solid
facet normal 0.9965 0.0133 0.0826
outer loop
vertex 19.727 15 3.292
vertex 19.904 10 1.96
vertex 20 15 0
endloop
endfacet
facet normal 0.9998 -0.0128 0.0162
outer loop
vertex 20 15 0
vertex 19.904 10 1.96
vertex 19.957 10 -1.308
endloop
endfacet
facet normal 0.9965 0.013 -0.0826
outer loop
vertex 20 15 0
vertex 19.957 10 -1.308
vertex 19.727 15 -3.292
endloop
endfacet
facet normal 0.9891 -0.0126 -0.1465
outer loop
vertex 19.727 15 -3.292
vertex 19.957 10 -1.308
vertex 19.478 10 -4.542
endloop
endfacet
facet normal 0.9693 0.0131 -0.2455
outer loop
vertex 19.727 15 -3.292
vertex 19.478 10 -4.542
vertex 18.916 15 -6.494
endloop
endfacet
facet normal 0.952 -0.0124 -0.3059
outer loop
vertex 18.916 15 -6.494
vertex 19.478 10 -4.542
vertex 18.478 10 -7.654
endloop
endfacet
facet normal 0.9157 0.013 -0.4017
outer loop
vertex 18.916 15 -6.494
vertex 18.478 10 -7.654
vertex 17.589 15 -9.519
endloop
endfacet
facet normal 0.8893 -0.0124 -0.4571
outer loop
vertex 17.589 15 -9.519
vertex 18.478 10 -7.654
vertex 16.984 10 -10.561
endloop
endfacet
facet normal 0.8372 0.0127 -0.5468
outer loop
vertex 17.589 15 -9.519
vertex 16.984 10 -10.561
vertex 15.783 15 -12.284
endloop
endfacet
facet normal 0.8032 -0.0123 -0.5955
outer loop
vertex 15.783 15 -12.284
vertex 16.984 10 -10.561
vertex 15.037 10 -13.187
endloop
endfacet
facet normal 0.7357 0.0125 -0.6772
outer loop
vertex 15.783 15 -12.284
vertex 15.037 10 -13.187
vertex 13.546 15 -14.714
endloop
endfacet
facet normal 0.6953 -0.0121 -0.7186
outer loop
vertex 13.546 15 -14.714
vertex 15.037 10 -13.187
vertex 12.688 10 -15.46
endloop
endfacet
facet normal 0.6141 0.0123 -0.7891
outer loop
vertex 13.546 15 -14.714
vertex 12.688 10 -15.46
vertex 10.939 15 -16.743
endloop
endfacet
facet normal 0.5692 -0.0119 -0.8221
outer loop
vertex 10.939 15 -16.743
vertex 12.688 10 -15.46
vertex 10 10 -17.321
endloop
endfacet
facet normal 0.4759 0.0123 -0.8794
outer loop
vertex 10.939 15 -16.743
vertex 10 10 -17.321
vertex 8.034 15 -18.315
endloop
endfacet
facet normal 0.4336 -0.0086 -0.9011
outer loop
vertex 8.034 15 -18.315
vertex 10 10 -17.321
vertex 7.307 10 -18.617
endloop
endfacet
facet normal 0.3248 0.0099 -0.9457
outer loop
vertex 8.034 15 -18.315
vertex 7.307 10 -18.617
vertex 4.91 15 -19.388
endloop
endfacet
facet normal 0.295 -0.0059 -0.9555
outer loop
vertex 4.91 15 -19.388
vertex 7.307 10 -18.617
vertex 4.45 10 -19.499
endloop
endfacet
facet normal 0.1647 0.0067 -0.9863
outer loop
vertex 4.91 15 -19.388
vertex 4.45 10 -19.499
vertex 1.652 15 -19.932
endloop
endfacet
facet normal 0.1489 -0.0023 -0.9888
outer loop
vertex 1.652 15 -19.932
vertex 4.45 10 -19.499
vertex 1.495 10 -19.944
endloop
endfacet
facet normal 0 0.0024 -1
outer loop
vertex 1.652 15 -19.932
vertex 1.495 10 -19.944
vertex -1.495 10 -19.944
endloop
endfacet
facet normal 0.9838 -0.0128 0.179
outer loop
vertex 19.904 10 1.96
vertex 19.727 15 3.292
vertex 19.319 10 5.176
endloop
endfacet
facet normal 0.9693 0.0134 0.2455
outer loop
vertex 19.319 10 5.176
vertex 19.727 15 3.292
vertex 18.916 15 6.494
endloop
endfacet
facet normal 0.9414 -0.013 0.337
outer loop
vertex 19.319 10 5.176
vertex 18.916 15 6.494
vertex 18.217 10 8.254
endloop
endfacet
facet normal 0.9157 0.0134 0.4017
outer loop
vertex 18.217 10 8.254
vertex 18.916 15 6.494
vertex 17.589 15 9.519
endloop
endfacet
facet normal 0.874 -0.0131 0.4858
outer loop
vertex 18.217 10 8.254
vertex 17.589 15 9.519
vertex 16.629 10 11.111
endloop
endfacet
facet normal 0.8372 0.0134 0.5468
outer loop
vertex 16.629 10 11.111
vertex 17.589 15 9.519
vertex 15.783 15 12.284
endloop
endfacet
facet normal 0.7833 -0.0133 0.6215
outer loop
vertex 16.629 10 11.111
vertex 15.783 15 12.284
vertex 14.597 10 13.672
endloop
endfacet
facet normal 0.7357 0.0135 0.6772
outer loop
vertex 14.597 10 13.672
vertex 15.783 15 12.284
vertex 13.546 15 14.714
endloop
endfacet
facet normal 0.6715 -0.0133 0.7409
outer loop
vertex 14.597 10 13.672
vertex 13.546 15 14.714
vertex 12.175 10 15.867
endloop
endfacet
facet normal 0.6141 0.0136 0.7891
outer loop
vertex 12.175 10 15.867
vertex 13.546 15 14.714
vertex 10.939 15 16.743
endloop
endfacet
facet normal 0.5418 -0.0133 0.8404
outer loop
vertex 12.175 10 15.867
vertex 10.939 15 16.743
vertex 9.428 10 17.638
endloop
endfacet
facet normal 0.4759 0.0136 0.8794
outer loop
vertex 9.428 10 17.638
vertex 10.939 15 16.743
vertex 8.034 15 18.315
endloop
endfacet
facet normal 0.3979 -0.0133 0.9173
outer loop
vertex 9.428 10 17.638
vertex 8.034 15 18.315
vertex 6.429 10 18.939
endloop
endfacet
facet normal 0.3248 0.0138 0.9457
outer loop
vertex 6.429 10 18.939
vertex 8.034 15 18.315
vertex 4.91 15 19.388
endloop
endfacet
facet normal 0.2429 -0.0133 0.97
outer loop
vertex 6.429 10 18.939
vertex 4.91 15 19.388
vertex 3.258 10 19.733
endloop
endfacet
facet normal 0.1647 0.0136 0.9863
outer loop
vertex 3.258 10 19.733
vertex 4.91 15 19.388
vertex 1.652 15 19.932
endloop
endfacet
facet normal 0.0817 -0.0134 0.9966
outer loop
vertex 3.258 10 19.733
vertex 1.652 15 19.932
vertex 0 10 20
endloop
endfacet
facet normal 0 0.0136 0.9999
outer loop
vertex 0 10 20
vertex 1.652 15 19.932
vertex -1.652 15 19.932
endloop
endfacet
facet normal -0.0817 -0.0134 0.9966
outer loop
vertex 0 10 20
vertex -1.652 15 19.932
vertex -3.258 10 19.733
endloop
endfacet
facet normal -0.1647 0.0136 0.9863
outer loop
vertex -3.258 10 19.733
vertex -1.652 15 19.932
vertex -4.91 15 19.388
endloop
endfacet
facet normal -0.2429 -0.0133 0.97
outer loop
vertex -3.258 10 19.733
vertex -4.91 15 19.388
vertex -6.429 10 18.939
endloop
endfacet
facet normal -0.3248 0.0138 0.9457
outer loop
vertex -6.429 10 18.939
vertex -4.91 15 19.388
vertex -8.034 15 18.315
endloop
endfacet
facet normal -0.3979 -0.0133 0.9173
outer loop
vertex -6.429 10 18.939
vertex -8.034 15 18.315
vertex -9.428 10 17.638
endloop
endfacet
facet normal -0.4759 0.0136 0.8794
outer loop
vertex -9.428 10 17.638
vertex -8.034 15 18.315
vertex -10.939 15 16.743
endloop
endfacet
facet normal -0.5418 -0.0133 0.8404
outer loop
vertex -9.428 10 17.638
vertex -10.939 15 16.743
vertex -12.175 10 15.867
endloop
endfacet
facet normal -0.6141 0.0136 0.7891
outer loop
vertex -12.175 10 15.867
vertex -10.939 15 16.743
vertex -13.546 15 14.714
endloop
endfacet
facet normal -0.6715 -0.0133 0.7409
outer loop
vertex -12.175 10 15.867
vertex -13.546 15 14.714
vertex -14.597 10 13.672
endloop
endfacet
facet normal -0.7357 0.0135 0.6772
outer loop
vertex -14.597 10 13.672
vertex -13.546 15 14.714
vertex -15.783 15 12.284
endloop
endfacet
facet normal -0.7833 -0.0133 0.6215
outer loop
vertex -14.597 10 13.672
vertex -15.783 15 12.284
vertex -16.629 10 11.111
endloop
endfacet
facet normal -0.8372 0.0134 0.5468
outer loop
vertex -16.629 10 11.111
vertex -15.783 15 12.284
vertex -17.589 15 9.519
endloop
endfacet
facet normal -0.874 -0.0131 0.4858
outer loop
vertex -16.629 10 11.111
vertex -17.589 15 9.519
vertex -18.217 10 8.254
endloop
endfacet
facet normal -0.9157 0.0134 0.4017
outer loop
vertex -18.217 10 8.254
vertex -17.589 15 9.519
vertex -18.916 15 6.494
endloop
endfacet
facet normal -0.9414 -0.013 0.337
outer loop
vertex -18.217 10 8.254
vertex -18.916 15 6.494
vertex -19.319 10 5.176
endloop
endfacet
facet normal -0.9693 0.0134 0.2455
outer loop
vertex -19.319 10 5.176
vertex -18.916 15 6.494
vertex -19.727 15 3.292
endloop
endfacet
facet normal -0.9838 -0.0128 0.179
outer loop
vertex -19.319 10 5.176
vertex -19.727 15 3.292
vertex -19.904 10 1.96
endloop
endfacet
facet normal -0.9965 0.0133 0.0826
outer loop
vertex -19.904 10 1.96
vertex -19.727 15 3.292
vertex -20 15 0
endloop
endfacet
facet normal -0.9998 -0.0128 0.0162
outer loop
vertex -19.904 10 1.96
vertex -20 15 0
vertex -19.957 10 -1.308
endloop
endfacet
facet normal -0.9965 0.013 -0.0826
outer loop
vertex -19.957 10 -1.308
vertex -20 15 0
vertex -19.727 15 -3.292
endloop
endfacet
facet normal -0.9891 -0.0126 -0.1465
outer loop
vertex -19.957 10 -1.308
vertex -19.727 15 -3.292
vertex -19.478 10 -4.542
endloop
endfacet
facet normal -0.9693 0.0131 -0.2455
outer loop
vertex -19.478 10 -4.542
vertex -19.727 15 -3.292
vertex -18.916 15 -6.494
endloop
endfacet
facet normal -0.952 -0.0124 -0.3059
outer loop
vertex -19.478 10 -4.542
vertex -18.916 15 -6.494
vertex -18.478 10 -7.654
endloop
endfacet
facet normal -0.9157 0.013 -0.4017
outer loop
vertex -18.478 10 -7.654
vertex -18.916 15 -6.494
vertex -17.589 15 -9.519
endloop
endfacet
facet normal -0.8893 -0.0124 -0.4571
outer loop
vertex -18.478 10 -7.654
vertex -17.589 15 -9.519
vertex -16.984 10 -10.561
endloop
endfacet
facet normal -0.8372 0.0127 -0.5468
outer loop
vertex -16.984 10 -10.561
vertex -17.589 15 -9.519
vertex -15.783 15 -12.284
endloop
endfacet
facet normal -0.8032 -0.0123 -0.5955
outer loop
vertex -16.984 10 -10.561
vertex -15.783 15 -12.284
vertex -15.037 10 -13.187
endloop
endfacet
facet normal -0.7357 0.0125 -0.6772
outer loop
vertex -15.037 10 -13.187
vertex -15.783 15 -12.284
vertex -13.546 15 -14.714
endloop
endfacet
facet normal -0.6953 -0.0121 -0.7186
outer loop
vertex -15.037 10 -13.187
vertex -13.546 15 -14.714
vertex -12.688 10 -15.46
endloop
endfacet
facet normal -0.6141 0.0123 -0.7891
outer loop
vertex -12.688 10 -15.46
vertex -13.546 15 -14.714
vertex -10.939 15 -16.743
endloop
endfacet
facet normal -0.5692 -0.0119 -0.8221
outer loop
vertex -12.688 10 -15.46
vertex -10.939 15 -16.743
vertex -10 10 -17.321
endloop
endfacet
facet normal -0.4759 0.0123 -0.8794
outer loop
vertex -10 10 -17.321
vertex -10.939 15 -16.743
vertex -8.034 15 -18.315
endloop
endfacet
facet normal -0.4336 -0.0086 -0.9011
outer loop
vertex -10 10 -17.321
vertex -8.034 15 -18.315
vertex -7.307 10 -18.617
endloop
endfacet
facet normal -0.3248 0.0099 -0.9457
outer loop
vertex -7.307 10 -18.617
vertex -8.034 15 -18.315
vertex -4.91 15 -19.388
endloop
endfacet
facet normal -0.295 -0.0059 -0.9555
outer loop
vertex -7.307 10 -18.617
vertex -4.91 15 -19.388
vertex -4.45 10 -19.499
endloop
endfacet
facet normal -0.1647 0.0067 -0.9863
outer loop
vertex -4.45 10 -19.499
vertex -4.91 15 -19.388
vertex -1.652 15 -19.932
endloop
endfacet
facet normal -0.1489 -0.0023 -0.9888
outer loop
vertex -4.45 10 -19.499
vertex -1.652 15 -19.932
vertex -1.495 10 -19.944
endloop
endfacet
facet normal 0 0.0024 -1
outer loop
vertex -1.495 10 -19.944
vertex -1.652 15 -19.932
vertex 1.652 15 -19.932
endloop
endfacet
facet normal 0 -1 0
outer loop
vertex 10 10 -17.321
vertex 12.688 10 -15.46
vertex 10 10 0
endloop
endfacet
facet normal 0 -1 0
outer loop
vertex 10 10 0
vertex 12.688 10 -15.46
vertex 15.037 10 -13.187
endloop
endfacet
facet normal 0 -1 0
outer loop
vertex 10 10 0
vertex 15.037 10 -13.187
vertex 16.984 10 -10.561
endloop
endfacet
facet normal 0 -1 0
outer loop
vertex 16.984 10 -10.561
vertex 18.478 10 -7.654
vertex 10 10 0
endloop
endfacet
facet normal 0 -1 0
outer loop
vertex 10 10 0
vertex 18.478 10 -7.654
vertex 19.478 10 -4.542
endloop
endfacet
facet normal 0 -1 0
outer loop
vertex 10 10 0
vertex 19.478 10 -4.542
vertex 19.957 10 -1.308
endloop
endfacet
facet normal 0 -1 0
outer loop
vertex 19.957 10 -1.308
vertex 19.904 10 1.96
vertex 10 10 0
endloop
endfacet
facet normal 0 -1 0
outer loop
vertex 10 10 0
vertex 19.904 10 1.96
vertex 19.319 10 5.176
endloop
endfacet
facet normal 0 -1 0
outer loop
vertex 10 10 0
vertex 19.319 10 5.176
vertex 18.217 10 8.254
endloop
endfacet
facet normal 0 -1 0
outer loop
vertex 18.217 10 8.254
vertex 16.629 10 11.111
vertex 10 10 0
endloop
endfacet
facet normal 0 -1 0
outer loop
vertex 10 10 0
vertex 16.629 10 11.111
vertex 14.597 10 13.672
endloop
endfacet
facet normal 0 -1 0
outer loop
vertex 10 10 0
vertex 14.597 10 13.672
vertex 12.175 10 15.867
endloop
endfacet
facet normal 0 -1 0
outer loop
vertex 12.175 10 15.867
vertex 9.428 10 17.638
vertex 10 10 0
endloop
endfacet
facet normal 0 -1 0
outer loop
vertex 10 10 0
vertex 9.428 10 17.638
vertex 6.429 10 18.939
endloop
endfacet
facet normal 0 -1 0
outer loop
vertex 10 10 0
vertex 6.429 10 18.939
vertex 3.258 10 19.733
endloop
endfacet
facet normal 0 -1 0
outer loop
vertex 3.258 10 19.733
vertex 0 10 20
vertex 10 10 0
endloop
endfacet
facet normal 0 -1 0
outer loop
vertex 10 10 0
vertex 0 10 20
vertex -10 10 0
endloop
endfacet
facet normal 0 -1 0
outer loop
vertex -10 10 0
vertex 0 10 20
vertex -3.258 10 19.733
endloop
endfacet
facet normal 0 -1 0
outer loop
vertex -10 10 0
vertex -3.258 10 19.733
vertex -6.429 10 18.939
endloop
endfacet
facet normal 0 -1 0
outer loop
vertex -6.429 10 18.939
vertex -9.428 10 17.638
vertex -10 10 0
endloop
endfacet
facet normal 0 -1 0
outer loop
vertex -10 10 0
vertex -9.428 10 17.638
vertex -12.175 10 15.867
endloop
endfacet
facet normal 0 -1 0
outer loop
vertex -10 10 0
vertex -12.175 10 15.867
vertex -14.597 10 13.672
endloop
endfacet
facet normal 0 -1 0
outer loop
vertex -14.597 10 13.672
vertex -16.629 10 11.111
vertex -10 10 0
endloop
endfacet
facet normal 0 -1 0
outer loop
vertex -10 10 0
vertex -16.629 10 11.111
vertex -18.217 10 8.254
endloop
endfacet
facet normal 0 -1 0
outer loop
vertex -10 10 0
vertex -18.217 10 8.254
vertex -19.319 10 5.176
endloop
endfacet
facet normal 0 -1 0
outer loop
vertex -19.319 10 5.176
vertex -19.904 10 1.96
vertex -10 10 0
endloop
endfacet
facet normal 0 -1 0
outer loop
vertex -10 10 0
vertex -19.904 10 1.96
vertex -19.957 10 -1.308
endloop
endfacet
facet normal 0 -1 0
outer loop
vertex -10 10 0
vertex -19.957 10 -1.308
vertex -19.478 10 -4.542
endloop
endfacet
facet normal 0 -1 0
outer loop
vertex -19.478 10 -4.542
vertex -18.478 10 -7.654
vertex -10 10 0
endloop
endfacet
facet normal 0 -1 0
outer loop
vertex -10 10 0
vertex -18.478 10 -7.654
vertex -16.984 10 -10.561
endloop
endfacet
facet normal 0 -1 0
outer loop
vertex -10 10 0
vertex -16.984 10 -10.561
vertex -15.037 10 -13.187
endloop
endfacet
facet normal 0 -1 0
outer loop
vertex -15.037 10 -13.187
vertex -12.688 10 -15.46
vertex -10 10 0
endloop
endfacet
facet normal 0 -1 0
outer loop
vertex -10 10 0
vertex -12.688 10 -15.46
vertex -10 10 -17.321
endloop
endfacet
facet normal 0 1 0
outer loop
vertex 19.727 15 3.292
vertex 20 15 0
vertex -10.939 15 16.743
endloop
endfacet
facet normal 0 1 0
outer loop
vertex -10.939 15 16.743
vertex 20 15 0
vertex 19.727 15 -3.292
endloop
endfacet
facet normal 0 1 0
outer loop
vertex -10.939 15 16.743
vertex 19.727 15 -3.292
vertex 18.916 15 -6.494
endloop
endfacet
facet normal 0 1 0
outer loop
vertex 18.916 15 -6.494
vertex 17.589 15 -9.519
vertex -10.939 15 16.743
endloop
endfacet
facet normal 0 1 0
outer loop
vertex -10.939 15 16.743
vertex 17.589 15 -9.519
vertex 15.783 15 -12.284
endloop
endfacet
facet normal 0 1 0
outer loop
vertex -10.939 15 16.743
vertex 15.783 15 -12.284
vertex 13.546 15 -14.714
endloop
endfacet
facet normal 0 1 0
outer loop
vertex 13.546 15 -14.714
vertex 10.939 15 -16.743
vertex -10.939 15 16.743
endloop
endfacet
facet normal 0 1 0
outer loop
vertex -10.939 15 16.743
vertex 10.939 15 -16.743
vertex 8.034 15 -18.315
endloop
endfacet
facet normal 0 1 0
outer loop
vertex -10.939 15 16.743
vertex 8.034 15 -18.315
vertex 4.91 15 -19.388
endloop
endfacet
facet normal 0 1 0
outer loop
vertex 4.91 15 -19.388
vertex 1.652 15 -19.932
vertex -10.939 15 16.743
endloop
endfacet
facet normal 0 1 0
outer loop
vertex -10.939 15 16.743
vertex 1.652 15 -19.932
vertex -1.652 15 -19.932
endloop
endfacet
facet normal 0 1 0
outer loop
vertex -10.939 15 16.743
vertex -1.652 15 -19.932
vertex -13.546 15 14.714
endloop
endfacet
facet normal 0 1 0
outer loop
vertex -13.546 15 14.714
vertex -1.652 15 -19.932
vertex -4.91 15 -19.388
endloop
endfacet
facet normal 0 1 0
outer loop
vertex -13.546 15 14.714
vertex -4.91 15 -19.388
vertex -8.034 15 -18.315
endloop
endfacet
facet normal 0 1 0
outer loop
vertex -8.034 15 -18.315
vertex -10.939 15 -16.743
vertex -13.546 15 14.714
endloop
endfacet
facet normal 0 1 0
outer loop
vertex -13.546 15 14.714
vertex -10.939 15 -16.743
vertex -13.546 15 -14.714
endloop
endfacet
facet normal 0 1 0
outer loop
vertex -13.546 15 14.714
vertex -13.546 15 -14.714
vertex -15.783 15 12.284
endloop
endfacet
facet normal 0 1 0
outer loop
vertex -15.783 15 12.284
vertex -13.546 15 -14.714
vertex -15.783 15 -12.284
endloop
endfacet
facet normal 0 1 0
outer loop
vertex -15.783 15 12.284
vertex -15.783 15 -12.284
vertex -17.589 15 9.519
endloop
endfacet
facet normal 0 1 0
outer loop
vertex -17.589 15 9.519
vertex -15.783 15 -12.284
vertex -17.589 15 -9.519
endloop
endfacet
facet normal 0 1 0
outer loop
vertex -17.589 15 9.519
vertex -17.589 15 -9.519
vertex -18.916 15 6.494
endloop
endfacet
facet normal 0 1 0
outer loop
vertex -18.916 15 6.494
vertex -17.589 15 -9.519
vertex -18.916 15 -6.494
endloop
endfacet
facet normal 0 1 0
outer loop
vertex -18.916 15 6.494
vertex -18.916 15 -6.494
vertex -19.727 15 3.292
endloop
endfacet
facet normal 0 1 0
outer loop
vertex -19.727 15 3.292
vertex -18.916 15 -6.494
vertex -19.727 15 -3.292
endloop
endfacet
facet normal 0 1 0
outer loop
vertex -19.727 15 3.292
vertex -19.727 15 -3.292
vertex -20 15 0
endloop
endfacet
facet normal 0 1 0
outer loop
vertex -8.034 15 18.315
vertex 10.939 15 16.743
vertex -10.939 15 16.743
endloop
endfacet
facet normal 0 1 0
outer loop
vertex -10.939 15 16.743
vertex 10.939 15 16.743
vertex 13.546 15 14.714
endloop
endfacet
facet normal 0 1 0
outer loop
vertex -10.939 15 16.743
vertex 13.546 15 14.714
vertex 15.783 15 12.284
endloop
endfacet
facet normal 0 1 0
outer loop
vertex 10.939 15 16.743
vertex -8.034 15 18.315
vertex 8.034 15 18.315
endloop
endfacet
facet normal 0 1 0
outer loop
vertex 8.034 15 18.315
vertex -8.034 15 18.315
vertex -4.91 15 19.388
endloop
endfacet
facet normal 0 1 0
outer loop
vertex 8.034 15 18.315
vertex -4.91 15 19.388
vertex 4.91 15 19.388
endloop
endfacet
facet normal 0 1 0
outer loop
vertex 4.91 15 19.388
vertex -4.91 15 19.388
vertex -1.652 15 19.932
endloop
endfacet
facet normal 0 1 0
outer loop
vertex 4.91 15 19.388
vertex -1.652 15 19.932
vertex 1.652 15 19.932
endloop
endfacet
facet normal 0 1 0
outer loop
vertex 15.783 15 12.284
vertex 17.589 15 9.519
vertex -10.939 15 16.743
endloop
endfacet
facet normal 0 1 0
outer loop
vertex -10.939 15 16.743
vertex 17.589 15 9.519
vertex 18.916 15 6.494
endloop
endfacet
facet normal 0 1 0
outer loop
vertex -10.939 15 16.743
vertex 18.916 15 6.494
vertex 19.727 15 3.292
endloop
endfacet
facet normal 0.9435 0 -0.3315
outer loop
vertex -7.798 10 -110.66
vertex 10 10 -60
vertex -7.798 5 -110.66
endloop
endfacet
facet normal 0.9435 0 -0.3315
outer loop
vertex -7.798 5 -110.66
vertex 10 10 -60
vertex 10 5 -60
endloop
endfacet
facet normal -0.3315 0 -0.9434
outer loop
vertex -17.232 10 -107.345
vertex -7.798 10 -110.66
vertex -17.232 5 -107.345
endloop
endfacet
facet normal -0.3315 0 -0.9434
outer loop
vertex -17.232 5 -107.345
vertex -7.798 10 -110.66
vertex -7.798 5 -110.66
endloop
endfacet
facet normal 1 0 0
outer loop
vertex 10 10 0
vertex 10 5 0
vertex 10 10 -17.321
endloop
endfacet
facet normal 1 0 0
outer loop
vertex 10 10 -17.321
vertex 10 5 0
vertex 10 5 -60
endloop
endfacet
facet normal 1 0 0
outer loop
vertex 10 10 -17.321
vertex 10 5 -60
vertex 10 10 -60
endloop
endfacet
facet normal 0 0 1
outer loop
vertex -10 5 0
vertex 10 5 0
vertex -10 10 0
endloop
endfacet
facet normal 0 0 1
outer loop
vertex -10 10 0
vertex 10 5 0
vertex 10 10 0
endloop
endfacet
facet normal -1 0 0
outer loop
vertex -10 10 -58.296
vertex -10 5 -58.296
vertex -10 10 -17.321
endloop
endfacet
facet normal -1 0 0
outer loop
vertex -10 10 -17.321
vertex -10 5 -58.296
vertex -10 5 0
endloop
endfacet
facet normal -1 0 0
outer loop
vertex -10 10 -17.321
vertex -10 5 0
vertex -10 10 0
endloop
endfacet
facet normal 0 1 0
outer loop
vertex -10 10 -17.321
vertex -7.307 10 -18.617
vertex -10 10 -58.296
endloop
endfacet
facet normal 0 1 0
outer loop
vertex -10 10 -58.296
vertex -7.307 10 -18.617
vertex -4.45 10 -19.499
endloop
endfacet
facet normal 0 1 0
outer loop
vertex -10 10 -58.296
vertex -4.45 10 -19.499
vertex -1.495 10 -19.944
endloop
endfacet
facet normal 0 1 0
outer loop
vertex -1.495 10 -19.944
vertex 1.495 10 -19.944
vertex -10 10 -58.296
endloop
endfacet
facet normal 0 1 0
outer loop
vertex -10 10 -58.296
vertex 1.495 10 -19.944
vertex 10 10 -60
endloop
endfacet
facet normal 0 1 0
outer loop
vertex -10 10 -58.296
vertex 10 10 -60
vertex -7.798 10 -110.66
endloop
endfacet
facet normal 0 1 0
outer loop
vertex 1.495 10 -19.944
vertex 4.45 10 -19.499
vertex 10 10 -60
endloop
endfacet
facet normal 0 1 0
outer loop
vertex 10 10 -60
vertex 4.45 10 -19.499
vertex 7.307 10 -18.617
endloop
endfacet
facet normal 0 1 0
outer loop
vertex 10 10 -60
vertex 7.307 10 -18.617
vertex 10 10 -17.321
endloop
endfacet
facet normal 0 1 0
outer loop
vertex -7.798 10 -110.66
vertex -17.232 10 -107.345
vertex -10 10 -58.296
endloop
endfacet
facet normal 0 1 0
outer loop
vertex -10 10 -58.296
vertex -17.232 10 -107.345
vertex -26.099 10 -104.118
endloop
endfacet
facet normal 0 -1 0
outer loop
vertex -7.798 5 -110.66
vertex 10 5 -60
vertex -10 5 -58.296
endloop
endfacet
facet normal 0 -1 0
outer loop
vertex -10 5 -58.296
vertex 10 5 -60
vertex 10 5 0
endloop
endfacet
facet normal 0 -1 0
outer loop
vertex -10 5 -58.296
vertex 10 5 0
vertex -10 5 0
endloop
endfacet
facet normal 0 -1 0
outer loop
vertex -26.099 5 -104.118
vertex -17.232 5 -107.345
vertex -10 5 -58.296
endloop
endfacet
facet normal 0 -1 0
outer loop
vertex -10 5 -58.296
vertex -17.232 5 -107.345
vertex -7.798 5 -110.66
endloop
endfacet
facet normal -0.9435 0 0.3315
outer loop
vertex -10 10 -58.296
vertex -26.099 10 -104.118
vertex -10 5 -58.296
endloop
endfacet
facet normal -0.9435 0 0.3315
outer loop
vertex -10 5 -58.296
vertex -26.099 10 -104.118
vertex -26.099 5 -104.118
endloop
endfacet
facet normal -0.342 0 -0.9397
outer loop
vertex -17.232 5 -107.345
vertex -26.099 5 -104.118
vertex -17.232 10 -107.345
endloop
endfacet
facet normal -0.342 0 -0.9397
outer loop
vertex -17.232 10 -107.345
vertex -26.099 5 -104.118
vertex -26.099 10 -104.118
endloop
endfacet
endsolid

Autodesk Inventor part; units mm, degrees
ref_plane "Work Plane1" through (0, 5, 0) normal (0, 1, 0) x (1, 0, 0)
sketch "Sketch2" plane through (0, 5, 0) normal (0, 1, 0) x (1, 0, 0)
  line L0 (0, 0) -> (0, 60)
  line L1 (0, 60) -> (-17.2323, 107.3454)
  line L2 (10, 0) -> (-10, 0)
  line L3 (-10, 0) -> (-10, 60)
  line L4 (-10, 60) -> (10, 60)
  line L5 (10, 60) -> (10, 0)
  line L6 (10, 0) -> (-10, 60) construction
  line L7 (-10, 0) -> (10, 60) construction
  line L8 (-17.2323, 107.3454) -> (-7.8354, 110.7656)
  line L9 (-7.8354, 110.7656) -> (10, 60)
  line L10 (0, 60) -> (-9.3969, 56.5798)
  line L11 (-9.3969, 56.5798) -> (-26.0986, 104.1184)
  line L12 (-26.0986, 104.1184) -> (-17.2323, 107.3454)
  point P0 (0, 30)
  dimension "d3" = 60
  dimension "d4" = 160
  dimension "d5" = 20
  dimension "d6" = 60
  dimension "d9" = 10
  dimension "d10" = 10
extrude "Extrusion2" add sketch "Sketch2" along normal blind 5 contours L2 L3 L11 L10 L0 | L0 L4 L5 L2 | L4 L3 L11 L12 L1 | L10 L11 L3 L4
ref_plane "Work Plane2" through (0, 10, 0) normal (0, 1, 0) x (1, 0, 0)
sketch "Sketch3" plane through (0, 10, 0) normal (0, 1, 0) x (1, 0, 0)
  line L0 (0, 60) -> (-17.2323, 107.3454) projected
  line L1 (-17.2323, 107.3454) -> (-26.0986, 104.1184) projected
  line L2 (-17.2323, 107.3454) -> (-7.7976, 110.66)
  line L3 (10, 60) -> (0, 60) projected
  line L4 (-7.7976, 110.66) -> (10, 60)
  line L5 (0, 60) -> (-17.2323, 107.3454) projected
  line L6 (10, 60) -> (0, 60)
  line L7 (0, 60) -> (-17.2323, 107.3454)
  point P0 (0, 0)
  dimension "d13" = 10
extrude "Extrusion3" add sketch "Sketch3" against normal blind 5
ref_plane "Work Plane3" through (0, 10, 0) normal (0, 1, 0) x (1, 0, 0)
sketch "Sketch4" plane through (0, 10, 0) normal (0, 1, 0) x (1, 0, 0)
  circle A0 centre (0, 0) radius 20
extrude "Extrusion4" add sketch "Sketch4" along normal blind 5
properties part number "scale_l_arm"
